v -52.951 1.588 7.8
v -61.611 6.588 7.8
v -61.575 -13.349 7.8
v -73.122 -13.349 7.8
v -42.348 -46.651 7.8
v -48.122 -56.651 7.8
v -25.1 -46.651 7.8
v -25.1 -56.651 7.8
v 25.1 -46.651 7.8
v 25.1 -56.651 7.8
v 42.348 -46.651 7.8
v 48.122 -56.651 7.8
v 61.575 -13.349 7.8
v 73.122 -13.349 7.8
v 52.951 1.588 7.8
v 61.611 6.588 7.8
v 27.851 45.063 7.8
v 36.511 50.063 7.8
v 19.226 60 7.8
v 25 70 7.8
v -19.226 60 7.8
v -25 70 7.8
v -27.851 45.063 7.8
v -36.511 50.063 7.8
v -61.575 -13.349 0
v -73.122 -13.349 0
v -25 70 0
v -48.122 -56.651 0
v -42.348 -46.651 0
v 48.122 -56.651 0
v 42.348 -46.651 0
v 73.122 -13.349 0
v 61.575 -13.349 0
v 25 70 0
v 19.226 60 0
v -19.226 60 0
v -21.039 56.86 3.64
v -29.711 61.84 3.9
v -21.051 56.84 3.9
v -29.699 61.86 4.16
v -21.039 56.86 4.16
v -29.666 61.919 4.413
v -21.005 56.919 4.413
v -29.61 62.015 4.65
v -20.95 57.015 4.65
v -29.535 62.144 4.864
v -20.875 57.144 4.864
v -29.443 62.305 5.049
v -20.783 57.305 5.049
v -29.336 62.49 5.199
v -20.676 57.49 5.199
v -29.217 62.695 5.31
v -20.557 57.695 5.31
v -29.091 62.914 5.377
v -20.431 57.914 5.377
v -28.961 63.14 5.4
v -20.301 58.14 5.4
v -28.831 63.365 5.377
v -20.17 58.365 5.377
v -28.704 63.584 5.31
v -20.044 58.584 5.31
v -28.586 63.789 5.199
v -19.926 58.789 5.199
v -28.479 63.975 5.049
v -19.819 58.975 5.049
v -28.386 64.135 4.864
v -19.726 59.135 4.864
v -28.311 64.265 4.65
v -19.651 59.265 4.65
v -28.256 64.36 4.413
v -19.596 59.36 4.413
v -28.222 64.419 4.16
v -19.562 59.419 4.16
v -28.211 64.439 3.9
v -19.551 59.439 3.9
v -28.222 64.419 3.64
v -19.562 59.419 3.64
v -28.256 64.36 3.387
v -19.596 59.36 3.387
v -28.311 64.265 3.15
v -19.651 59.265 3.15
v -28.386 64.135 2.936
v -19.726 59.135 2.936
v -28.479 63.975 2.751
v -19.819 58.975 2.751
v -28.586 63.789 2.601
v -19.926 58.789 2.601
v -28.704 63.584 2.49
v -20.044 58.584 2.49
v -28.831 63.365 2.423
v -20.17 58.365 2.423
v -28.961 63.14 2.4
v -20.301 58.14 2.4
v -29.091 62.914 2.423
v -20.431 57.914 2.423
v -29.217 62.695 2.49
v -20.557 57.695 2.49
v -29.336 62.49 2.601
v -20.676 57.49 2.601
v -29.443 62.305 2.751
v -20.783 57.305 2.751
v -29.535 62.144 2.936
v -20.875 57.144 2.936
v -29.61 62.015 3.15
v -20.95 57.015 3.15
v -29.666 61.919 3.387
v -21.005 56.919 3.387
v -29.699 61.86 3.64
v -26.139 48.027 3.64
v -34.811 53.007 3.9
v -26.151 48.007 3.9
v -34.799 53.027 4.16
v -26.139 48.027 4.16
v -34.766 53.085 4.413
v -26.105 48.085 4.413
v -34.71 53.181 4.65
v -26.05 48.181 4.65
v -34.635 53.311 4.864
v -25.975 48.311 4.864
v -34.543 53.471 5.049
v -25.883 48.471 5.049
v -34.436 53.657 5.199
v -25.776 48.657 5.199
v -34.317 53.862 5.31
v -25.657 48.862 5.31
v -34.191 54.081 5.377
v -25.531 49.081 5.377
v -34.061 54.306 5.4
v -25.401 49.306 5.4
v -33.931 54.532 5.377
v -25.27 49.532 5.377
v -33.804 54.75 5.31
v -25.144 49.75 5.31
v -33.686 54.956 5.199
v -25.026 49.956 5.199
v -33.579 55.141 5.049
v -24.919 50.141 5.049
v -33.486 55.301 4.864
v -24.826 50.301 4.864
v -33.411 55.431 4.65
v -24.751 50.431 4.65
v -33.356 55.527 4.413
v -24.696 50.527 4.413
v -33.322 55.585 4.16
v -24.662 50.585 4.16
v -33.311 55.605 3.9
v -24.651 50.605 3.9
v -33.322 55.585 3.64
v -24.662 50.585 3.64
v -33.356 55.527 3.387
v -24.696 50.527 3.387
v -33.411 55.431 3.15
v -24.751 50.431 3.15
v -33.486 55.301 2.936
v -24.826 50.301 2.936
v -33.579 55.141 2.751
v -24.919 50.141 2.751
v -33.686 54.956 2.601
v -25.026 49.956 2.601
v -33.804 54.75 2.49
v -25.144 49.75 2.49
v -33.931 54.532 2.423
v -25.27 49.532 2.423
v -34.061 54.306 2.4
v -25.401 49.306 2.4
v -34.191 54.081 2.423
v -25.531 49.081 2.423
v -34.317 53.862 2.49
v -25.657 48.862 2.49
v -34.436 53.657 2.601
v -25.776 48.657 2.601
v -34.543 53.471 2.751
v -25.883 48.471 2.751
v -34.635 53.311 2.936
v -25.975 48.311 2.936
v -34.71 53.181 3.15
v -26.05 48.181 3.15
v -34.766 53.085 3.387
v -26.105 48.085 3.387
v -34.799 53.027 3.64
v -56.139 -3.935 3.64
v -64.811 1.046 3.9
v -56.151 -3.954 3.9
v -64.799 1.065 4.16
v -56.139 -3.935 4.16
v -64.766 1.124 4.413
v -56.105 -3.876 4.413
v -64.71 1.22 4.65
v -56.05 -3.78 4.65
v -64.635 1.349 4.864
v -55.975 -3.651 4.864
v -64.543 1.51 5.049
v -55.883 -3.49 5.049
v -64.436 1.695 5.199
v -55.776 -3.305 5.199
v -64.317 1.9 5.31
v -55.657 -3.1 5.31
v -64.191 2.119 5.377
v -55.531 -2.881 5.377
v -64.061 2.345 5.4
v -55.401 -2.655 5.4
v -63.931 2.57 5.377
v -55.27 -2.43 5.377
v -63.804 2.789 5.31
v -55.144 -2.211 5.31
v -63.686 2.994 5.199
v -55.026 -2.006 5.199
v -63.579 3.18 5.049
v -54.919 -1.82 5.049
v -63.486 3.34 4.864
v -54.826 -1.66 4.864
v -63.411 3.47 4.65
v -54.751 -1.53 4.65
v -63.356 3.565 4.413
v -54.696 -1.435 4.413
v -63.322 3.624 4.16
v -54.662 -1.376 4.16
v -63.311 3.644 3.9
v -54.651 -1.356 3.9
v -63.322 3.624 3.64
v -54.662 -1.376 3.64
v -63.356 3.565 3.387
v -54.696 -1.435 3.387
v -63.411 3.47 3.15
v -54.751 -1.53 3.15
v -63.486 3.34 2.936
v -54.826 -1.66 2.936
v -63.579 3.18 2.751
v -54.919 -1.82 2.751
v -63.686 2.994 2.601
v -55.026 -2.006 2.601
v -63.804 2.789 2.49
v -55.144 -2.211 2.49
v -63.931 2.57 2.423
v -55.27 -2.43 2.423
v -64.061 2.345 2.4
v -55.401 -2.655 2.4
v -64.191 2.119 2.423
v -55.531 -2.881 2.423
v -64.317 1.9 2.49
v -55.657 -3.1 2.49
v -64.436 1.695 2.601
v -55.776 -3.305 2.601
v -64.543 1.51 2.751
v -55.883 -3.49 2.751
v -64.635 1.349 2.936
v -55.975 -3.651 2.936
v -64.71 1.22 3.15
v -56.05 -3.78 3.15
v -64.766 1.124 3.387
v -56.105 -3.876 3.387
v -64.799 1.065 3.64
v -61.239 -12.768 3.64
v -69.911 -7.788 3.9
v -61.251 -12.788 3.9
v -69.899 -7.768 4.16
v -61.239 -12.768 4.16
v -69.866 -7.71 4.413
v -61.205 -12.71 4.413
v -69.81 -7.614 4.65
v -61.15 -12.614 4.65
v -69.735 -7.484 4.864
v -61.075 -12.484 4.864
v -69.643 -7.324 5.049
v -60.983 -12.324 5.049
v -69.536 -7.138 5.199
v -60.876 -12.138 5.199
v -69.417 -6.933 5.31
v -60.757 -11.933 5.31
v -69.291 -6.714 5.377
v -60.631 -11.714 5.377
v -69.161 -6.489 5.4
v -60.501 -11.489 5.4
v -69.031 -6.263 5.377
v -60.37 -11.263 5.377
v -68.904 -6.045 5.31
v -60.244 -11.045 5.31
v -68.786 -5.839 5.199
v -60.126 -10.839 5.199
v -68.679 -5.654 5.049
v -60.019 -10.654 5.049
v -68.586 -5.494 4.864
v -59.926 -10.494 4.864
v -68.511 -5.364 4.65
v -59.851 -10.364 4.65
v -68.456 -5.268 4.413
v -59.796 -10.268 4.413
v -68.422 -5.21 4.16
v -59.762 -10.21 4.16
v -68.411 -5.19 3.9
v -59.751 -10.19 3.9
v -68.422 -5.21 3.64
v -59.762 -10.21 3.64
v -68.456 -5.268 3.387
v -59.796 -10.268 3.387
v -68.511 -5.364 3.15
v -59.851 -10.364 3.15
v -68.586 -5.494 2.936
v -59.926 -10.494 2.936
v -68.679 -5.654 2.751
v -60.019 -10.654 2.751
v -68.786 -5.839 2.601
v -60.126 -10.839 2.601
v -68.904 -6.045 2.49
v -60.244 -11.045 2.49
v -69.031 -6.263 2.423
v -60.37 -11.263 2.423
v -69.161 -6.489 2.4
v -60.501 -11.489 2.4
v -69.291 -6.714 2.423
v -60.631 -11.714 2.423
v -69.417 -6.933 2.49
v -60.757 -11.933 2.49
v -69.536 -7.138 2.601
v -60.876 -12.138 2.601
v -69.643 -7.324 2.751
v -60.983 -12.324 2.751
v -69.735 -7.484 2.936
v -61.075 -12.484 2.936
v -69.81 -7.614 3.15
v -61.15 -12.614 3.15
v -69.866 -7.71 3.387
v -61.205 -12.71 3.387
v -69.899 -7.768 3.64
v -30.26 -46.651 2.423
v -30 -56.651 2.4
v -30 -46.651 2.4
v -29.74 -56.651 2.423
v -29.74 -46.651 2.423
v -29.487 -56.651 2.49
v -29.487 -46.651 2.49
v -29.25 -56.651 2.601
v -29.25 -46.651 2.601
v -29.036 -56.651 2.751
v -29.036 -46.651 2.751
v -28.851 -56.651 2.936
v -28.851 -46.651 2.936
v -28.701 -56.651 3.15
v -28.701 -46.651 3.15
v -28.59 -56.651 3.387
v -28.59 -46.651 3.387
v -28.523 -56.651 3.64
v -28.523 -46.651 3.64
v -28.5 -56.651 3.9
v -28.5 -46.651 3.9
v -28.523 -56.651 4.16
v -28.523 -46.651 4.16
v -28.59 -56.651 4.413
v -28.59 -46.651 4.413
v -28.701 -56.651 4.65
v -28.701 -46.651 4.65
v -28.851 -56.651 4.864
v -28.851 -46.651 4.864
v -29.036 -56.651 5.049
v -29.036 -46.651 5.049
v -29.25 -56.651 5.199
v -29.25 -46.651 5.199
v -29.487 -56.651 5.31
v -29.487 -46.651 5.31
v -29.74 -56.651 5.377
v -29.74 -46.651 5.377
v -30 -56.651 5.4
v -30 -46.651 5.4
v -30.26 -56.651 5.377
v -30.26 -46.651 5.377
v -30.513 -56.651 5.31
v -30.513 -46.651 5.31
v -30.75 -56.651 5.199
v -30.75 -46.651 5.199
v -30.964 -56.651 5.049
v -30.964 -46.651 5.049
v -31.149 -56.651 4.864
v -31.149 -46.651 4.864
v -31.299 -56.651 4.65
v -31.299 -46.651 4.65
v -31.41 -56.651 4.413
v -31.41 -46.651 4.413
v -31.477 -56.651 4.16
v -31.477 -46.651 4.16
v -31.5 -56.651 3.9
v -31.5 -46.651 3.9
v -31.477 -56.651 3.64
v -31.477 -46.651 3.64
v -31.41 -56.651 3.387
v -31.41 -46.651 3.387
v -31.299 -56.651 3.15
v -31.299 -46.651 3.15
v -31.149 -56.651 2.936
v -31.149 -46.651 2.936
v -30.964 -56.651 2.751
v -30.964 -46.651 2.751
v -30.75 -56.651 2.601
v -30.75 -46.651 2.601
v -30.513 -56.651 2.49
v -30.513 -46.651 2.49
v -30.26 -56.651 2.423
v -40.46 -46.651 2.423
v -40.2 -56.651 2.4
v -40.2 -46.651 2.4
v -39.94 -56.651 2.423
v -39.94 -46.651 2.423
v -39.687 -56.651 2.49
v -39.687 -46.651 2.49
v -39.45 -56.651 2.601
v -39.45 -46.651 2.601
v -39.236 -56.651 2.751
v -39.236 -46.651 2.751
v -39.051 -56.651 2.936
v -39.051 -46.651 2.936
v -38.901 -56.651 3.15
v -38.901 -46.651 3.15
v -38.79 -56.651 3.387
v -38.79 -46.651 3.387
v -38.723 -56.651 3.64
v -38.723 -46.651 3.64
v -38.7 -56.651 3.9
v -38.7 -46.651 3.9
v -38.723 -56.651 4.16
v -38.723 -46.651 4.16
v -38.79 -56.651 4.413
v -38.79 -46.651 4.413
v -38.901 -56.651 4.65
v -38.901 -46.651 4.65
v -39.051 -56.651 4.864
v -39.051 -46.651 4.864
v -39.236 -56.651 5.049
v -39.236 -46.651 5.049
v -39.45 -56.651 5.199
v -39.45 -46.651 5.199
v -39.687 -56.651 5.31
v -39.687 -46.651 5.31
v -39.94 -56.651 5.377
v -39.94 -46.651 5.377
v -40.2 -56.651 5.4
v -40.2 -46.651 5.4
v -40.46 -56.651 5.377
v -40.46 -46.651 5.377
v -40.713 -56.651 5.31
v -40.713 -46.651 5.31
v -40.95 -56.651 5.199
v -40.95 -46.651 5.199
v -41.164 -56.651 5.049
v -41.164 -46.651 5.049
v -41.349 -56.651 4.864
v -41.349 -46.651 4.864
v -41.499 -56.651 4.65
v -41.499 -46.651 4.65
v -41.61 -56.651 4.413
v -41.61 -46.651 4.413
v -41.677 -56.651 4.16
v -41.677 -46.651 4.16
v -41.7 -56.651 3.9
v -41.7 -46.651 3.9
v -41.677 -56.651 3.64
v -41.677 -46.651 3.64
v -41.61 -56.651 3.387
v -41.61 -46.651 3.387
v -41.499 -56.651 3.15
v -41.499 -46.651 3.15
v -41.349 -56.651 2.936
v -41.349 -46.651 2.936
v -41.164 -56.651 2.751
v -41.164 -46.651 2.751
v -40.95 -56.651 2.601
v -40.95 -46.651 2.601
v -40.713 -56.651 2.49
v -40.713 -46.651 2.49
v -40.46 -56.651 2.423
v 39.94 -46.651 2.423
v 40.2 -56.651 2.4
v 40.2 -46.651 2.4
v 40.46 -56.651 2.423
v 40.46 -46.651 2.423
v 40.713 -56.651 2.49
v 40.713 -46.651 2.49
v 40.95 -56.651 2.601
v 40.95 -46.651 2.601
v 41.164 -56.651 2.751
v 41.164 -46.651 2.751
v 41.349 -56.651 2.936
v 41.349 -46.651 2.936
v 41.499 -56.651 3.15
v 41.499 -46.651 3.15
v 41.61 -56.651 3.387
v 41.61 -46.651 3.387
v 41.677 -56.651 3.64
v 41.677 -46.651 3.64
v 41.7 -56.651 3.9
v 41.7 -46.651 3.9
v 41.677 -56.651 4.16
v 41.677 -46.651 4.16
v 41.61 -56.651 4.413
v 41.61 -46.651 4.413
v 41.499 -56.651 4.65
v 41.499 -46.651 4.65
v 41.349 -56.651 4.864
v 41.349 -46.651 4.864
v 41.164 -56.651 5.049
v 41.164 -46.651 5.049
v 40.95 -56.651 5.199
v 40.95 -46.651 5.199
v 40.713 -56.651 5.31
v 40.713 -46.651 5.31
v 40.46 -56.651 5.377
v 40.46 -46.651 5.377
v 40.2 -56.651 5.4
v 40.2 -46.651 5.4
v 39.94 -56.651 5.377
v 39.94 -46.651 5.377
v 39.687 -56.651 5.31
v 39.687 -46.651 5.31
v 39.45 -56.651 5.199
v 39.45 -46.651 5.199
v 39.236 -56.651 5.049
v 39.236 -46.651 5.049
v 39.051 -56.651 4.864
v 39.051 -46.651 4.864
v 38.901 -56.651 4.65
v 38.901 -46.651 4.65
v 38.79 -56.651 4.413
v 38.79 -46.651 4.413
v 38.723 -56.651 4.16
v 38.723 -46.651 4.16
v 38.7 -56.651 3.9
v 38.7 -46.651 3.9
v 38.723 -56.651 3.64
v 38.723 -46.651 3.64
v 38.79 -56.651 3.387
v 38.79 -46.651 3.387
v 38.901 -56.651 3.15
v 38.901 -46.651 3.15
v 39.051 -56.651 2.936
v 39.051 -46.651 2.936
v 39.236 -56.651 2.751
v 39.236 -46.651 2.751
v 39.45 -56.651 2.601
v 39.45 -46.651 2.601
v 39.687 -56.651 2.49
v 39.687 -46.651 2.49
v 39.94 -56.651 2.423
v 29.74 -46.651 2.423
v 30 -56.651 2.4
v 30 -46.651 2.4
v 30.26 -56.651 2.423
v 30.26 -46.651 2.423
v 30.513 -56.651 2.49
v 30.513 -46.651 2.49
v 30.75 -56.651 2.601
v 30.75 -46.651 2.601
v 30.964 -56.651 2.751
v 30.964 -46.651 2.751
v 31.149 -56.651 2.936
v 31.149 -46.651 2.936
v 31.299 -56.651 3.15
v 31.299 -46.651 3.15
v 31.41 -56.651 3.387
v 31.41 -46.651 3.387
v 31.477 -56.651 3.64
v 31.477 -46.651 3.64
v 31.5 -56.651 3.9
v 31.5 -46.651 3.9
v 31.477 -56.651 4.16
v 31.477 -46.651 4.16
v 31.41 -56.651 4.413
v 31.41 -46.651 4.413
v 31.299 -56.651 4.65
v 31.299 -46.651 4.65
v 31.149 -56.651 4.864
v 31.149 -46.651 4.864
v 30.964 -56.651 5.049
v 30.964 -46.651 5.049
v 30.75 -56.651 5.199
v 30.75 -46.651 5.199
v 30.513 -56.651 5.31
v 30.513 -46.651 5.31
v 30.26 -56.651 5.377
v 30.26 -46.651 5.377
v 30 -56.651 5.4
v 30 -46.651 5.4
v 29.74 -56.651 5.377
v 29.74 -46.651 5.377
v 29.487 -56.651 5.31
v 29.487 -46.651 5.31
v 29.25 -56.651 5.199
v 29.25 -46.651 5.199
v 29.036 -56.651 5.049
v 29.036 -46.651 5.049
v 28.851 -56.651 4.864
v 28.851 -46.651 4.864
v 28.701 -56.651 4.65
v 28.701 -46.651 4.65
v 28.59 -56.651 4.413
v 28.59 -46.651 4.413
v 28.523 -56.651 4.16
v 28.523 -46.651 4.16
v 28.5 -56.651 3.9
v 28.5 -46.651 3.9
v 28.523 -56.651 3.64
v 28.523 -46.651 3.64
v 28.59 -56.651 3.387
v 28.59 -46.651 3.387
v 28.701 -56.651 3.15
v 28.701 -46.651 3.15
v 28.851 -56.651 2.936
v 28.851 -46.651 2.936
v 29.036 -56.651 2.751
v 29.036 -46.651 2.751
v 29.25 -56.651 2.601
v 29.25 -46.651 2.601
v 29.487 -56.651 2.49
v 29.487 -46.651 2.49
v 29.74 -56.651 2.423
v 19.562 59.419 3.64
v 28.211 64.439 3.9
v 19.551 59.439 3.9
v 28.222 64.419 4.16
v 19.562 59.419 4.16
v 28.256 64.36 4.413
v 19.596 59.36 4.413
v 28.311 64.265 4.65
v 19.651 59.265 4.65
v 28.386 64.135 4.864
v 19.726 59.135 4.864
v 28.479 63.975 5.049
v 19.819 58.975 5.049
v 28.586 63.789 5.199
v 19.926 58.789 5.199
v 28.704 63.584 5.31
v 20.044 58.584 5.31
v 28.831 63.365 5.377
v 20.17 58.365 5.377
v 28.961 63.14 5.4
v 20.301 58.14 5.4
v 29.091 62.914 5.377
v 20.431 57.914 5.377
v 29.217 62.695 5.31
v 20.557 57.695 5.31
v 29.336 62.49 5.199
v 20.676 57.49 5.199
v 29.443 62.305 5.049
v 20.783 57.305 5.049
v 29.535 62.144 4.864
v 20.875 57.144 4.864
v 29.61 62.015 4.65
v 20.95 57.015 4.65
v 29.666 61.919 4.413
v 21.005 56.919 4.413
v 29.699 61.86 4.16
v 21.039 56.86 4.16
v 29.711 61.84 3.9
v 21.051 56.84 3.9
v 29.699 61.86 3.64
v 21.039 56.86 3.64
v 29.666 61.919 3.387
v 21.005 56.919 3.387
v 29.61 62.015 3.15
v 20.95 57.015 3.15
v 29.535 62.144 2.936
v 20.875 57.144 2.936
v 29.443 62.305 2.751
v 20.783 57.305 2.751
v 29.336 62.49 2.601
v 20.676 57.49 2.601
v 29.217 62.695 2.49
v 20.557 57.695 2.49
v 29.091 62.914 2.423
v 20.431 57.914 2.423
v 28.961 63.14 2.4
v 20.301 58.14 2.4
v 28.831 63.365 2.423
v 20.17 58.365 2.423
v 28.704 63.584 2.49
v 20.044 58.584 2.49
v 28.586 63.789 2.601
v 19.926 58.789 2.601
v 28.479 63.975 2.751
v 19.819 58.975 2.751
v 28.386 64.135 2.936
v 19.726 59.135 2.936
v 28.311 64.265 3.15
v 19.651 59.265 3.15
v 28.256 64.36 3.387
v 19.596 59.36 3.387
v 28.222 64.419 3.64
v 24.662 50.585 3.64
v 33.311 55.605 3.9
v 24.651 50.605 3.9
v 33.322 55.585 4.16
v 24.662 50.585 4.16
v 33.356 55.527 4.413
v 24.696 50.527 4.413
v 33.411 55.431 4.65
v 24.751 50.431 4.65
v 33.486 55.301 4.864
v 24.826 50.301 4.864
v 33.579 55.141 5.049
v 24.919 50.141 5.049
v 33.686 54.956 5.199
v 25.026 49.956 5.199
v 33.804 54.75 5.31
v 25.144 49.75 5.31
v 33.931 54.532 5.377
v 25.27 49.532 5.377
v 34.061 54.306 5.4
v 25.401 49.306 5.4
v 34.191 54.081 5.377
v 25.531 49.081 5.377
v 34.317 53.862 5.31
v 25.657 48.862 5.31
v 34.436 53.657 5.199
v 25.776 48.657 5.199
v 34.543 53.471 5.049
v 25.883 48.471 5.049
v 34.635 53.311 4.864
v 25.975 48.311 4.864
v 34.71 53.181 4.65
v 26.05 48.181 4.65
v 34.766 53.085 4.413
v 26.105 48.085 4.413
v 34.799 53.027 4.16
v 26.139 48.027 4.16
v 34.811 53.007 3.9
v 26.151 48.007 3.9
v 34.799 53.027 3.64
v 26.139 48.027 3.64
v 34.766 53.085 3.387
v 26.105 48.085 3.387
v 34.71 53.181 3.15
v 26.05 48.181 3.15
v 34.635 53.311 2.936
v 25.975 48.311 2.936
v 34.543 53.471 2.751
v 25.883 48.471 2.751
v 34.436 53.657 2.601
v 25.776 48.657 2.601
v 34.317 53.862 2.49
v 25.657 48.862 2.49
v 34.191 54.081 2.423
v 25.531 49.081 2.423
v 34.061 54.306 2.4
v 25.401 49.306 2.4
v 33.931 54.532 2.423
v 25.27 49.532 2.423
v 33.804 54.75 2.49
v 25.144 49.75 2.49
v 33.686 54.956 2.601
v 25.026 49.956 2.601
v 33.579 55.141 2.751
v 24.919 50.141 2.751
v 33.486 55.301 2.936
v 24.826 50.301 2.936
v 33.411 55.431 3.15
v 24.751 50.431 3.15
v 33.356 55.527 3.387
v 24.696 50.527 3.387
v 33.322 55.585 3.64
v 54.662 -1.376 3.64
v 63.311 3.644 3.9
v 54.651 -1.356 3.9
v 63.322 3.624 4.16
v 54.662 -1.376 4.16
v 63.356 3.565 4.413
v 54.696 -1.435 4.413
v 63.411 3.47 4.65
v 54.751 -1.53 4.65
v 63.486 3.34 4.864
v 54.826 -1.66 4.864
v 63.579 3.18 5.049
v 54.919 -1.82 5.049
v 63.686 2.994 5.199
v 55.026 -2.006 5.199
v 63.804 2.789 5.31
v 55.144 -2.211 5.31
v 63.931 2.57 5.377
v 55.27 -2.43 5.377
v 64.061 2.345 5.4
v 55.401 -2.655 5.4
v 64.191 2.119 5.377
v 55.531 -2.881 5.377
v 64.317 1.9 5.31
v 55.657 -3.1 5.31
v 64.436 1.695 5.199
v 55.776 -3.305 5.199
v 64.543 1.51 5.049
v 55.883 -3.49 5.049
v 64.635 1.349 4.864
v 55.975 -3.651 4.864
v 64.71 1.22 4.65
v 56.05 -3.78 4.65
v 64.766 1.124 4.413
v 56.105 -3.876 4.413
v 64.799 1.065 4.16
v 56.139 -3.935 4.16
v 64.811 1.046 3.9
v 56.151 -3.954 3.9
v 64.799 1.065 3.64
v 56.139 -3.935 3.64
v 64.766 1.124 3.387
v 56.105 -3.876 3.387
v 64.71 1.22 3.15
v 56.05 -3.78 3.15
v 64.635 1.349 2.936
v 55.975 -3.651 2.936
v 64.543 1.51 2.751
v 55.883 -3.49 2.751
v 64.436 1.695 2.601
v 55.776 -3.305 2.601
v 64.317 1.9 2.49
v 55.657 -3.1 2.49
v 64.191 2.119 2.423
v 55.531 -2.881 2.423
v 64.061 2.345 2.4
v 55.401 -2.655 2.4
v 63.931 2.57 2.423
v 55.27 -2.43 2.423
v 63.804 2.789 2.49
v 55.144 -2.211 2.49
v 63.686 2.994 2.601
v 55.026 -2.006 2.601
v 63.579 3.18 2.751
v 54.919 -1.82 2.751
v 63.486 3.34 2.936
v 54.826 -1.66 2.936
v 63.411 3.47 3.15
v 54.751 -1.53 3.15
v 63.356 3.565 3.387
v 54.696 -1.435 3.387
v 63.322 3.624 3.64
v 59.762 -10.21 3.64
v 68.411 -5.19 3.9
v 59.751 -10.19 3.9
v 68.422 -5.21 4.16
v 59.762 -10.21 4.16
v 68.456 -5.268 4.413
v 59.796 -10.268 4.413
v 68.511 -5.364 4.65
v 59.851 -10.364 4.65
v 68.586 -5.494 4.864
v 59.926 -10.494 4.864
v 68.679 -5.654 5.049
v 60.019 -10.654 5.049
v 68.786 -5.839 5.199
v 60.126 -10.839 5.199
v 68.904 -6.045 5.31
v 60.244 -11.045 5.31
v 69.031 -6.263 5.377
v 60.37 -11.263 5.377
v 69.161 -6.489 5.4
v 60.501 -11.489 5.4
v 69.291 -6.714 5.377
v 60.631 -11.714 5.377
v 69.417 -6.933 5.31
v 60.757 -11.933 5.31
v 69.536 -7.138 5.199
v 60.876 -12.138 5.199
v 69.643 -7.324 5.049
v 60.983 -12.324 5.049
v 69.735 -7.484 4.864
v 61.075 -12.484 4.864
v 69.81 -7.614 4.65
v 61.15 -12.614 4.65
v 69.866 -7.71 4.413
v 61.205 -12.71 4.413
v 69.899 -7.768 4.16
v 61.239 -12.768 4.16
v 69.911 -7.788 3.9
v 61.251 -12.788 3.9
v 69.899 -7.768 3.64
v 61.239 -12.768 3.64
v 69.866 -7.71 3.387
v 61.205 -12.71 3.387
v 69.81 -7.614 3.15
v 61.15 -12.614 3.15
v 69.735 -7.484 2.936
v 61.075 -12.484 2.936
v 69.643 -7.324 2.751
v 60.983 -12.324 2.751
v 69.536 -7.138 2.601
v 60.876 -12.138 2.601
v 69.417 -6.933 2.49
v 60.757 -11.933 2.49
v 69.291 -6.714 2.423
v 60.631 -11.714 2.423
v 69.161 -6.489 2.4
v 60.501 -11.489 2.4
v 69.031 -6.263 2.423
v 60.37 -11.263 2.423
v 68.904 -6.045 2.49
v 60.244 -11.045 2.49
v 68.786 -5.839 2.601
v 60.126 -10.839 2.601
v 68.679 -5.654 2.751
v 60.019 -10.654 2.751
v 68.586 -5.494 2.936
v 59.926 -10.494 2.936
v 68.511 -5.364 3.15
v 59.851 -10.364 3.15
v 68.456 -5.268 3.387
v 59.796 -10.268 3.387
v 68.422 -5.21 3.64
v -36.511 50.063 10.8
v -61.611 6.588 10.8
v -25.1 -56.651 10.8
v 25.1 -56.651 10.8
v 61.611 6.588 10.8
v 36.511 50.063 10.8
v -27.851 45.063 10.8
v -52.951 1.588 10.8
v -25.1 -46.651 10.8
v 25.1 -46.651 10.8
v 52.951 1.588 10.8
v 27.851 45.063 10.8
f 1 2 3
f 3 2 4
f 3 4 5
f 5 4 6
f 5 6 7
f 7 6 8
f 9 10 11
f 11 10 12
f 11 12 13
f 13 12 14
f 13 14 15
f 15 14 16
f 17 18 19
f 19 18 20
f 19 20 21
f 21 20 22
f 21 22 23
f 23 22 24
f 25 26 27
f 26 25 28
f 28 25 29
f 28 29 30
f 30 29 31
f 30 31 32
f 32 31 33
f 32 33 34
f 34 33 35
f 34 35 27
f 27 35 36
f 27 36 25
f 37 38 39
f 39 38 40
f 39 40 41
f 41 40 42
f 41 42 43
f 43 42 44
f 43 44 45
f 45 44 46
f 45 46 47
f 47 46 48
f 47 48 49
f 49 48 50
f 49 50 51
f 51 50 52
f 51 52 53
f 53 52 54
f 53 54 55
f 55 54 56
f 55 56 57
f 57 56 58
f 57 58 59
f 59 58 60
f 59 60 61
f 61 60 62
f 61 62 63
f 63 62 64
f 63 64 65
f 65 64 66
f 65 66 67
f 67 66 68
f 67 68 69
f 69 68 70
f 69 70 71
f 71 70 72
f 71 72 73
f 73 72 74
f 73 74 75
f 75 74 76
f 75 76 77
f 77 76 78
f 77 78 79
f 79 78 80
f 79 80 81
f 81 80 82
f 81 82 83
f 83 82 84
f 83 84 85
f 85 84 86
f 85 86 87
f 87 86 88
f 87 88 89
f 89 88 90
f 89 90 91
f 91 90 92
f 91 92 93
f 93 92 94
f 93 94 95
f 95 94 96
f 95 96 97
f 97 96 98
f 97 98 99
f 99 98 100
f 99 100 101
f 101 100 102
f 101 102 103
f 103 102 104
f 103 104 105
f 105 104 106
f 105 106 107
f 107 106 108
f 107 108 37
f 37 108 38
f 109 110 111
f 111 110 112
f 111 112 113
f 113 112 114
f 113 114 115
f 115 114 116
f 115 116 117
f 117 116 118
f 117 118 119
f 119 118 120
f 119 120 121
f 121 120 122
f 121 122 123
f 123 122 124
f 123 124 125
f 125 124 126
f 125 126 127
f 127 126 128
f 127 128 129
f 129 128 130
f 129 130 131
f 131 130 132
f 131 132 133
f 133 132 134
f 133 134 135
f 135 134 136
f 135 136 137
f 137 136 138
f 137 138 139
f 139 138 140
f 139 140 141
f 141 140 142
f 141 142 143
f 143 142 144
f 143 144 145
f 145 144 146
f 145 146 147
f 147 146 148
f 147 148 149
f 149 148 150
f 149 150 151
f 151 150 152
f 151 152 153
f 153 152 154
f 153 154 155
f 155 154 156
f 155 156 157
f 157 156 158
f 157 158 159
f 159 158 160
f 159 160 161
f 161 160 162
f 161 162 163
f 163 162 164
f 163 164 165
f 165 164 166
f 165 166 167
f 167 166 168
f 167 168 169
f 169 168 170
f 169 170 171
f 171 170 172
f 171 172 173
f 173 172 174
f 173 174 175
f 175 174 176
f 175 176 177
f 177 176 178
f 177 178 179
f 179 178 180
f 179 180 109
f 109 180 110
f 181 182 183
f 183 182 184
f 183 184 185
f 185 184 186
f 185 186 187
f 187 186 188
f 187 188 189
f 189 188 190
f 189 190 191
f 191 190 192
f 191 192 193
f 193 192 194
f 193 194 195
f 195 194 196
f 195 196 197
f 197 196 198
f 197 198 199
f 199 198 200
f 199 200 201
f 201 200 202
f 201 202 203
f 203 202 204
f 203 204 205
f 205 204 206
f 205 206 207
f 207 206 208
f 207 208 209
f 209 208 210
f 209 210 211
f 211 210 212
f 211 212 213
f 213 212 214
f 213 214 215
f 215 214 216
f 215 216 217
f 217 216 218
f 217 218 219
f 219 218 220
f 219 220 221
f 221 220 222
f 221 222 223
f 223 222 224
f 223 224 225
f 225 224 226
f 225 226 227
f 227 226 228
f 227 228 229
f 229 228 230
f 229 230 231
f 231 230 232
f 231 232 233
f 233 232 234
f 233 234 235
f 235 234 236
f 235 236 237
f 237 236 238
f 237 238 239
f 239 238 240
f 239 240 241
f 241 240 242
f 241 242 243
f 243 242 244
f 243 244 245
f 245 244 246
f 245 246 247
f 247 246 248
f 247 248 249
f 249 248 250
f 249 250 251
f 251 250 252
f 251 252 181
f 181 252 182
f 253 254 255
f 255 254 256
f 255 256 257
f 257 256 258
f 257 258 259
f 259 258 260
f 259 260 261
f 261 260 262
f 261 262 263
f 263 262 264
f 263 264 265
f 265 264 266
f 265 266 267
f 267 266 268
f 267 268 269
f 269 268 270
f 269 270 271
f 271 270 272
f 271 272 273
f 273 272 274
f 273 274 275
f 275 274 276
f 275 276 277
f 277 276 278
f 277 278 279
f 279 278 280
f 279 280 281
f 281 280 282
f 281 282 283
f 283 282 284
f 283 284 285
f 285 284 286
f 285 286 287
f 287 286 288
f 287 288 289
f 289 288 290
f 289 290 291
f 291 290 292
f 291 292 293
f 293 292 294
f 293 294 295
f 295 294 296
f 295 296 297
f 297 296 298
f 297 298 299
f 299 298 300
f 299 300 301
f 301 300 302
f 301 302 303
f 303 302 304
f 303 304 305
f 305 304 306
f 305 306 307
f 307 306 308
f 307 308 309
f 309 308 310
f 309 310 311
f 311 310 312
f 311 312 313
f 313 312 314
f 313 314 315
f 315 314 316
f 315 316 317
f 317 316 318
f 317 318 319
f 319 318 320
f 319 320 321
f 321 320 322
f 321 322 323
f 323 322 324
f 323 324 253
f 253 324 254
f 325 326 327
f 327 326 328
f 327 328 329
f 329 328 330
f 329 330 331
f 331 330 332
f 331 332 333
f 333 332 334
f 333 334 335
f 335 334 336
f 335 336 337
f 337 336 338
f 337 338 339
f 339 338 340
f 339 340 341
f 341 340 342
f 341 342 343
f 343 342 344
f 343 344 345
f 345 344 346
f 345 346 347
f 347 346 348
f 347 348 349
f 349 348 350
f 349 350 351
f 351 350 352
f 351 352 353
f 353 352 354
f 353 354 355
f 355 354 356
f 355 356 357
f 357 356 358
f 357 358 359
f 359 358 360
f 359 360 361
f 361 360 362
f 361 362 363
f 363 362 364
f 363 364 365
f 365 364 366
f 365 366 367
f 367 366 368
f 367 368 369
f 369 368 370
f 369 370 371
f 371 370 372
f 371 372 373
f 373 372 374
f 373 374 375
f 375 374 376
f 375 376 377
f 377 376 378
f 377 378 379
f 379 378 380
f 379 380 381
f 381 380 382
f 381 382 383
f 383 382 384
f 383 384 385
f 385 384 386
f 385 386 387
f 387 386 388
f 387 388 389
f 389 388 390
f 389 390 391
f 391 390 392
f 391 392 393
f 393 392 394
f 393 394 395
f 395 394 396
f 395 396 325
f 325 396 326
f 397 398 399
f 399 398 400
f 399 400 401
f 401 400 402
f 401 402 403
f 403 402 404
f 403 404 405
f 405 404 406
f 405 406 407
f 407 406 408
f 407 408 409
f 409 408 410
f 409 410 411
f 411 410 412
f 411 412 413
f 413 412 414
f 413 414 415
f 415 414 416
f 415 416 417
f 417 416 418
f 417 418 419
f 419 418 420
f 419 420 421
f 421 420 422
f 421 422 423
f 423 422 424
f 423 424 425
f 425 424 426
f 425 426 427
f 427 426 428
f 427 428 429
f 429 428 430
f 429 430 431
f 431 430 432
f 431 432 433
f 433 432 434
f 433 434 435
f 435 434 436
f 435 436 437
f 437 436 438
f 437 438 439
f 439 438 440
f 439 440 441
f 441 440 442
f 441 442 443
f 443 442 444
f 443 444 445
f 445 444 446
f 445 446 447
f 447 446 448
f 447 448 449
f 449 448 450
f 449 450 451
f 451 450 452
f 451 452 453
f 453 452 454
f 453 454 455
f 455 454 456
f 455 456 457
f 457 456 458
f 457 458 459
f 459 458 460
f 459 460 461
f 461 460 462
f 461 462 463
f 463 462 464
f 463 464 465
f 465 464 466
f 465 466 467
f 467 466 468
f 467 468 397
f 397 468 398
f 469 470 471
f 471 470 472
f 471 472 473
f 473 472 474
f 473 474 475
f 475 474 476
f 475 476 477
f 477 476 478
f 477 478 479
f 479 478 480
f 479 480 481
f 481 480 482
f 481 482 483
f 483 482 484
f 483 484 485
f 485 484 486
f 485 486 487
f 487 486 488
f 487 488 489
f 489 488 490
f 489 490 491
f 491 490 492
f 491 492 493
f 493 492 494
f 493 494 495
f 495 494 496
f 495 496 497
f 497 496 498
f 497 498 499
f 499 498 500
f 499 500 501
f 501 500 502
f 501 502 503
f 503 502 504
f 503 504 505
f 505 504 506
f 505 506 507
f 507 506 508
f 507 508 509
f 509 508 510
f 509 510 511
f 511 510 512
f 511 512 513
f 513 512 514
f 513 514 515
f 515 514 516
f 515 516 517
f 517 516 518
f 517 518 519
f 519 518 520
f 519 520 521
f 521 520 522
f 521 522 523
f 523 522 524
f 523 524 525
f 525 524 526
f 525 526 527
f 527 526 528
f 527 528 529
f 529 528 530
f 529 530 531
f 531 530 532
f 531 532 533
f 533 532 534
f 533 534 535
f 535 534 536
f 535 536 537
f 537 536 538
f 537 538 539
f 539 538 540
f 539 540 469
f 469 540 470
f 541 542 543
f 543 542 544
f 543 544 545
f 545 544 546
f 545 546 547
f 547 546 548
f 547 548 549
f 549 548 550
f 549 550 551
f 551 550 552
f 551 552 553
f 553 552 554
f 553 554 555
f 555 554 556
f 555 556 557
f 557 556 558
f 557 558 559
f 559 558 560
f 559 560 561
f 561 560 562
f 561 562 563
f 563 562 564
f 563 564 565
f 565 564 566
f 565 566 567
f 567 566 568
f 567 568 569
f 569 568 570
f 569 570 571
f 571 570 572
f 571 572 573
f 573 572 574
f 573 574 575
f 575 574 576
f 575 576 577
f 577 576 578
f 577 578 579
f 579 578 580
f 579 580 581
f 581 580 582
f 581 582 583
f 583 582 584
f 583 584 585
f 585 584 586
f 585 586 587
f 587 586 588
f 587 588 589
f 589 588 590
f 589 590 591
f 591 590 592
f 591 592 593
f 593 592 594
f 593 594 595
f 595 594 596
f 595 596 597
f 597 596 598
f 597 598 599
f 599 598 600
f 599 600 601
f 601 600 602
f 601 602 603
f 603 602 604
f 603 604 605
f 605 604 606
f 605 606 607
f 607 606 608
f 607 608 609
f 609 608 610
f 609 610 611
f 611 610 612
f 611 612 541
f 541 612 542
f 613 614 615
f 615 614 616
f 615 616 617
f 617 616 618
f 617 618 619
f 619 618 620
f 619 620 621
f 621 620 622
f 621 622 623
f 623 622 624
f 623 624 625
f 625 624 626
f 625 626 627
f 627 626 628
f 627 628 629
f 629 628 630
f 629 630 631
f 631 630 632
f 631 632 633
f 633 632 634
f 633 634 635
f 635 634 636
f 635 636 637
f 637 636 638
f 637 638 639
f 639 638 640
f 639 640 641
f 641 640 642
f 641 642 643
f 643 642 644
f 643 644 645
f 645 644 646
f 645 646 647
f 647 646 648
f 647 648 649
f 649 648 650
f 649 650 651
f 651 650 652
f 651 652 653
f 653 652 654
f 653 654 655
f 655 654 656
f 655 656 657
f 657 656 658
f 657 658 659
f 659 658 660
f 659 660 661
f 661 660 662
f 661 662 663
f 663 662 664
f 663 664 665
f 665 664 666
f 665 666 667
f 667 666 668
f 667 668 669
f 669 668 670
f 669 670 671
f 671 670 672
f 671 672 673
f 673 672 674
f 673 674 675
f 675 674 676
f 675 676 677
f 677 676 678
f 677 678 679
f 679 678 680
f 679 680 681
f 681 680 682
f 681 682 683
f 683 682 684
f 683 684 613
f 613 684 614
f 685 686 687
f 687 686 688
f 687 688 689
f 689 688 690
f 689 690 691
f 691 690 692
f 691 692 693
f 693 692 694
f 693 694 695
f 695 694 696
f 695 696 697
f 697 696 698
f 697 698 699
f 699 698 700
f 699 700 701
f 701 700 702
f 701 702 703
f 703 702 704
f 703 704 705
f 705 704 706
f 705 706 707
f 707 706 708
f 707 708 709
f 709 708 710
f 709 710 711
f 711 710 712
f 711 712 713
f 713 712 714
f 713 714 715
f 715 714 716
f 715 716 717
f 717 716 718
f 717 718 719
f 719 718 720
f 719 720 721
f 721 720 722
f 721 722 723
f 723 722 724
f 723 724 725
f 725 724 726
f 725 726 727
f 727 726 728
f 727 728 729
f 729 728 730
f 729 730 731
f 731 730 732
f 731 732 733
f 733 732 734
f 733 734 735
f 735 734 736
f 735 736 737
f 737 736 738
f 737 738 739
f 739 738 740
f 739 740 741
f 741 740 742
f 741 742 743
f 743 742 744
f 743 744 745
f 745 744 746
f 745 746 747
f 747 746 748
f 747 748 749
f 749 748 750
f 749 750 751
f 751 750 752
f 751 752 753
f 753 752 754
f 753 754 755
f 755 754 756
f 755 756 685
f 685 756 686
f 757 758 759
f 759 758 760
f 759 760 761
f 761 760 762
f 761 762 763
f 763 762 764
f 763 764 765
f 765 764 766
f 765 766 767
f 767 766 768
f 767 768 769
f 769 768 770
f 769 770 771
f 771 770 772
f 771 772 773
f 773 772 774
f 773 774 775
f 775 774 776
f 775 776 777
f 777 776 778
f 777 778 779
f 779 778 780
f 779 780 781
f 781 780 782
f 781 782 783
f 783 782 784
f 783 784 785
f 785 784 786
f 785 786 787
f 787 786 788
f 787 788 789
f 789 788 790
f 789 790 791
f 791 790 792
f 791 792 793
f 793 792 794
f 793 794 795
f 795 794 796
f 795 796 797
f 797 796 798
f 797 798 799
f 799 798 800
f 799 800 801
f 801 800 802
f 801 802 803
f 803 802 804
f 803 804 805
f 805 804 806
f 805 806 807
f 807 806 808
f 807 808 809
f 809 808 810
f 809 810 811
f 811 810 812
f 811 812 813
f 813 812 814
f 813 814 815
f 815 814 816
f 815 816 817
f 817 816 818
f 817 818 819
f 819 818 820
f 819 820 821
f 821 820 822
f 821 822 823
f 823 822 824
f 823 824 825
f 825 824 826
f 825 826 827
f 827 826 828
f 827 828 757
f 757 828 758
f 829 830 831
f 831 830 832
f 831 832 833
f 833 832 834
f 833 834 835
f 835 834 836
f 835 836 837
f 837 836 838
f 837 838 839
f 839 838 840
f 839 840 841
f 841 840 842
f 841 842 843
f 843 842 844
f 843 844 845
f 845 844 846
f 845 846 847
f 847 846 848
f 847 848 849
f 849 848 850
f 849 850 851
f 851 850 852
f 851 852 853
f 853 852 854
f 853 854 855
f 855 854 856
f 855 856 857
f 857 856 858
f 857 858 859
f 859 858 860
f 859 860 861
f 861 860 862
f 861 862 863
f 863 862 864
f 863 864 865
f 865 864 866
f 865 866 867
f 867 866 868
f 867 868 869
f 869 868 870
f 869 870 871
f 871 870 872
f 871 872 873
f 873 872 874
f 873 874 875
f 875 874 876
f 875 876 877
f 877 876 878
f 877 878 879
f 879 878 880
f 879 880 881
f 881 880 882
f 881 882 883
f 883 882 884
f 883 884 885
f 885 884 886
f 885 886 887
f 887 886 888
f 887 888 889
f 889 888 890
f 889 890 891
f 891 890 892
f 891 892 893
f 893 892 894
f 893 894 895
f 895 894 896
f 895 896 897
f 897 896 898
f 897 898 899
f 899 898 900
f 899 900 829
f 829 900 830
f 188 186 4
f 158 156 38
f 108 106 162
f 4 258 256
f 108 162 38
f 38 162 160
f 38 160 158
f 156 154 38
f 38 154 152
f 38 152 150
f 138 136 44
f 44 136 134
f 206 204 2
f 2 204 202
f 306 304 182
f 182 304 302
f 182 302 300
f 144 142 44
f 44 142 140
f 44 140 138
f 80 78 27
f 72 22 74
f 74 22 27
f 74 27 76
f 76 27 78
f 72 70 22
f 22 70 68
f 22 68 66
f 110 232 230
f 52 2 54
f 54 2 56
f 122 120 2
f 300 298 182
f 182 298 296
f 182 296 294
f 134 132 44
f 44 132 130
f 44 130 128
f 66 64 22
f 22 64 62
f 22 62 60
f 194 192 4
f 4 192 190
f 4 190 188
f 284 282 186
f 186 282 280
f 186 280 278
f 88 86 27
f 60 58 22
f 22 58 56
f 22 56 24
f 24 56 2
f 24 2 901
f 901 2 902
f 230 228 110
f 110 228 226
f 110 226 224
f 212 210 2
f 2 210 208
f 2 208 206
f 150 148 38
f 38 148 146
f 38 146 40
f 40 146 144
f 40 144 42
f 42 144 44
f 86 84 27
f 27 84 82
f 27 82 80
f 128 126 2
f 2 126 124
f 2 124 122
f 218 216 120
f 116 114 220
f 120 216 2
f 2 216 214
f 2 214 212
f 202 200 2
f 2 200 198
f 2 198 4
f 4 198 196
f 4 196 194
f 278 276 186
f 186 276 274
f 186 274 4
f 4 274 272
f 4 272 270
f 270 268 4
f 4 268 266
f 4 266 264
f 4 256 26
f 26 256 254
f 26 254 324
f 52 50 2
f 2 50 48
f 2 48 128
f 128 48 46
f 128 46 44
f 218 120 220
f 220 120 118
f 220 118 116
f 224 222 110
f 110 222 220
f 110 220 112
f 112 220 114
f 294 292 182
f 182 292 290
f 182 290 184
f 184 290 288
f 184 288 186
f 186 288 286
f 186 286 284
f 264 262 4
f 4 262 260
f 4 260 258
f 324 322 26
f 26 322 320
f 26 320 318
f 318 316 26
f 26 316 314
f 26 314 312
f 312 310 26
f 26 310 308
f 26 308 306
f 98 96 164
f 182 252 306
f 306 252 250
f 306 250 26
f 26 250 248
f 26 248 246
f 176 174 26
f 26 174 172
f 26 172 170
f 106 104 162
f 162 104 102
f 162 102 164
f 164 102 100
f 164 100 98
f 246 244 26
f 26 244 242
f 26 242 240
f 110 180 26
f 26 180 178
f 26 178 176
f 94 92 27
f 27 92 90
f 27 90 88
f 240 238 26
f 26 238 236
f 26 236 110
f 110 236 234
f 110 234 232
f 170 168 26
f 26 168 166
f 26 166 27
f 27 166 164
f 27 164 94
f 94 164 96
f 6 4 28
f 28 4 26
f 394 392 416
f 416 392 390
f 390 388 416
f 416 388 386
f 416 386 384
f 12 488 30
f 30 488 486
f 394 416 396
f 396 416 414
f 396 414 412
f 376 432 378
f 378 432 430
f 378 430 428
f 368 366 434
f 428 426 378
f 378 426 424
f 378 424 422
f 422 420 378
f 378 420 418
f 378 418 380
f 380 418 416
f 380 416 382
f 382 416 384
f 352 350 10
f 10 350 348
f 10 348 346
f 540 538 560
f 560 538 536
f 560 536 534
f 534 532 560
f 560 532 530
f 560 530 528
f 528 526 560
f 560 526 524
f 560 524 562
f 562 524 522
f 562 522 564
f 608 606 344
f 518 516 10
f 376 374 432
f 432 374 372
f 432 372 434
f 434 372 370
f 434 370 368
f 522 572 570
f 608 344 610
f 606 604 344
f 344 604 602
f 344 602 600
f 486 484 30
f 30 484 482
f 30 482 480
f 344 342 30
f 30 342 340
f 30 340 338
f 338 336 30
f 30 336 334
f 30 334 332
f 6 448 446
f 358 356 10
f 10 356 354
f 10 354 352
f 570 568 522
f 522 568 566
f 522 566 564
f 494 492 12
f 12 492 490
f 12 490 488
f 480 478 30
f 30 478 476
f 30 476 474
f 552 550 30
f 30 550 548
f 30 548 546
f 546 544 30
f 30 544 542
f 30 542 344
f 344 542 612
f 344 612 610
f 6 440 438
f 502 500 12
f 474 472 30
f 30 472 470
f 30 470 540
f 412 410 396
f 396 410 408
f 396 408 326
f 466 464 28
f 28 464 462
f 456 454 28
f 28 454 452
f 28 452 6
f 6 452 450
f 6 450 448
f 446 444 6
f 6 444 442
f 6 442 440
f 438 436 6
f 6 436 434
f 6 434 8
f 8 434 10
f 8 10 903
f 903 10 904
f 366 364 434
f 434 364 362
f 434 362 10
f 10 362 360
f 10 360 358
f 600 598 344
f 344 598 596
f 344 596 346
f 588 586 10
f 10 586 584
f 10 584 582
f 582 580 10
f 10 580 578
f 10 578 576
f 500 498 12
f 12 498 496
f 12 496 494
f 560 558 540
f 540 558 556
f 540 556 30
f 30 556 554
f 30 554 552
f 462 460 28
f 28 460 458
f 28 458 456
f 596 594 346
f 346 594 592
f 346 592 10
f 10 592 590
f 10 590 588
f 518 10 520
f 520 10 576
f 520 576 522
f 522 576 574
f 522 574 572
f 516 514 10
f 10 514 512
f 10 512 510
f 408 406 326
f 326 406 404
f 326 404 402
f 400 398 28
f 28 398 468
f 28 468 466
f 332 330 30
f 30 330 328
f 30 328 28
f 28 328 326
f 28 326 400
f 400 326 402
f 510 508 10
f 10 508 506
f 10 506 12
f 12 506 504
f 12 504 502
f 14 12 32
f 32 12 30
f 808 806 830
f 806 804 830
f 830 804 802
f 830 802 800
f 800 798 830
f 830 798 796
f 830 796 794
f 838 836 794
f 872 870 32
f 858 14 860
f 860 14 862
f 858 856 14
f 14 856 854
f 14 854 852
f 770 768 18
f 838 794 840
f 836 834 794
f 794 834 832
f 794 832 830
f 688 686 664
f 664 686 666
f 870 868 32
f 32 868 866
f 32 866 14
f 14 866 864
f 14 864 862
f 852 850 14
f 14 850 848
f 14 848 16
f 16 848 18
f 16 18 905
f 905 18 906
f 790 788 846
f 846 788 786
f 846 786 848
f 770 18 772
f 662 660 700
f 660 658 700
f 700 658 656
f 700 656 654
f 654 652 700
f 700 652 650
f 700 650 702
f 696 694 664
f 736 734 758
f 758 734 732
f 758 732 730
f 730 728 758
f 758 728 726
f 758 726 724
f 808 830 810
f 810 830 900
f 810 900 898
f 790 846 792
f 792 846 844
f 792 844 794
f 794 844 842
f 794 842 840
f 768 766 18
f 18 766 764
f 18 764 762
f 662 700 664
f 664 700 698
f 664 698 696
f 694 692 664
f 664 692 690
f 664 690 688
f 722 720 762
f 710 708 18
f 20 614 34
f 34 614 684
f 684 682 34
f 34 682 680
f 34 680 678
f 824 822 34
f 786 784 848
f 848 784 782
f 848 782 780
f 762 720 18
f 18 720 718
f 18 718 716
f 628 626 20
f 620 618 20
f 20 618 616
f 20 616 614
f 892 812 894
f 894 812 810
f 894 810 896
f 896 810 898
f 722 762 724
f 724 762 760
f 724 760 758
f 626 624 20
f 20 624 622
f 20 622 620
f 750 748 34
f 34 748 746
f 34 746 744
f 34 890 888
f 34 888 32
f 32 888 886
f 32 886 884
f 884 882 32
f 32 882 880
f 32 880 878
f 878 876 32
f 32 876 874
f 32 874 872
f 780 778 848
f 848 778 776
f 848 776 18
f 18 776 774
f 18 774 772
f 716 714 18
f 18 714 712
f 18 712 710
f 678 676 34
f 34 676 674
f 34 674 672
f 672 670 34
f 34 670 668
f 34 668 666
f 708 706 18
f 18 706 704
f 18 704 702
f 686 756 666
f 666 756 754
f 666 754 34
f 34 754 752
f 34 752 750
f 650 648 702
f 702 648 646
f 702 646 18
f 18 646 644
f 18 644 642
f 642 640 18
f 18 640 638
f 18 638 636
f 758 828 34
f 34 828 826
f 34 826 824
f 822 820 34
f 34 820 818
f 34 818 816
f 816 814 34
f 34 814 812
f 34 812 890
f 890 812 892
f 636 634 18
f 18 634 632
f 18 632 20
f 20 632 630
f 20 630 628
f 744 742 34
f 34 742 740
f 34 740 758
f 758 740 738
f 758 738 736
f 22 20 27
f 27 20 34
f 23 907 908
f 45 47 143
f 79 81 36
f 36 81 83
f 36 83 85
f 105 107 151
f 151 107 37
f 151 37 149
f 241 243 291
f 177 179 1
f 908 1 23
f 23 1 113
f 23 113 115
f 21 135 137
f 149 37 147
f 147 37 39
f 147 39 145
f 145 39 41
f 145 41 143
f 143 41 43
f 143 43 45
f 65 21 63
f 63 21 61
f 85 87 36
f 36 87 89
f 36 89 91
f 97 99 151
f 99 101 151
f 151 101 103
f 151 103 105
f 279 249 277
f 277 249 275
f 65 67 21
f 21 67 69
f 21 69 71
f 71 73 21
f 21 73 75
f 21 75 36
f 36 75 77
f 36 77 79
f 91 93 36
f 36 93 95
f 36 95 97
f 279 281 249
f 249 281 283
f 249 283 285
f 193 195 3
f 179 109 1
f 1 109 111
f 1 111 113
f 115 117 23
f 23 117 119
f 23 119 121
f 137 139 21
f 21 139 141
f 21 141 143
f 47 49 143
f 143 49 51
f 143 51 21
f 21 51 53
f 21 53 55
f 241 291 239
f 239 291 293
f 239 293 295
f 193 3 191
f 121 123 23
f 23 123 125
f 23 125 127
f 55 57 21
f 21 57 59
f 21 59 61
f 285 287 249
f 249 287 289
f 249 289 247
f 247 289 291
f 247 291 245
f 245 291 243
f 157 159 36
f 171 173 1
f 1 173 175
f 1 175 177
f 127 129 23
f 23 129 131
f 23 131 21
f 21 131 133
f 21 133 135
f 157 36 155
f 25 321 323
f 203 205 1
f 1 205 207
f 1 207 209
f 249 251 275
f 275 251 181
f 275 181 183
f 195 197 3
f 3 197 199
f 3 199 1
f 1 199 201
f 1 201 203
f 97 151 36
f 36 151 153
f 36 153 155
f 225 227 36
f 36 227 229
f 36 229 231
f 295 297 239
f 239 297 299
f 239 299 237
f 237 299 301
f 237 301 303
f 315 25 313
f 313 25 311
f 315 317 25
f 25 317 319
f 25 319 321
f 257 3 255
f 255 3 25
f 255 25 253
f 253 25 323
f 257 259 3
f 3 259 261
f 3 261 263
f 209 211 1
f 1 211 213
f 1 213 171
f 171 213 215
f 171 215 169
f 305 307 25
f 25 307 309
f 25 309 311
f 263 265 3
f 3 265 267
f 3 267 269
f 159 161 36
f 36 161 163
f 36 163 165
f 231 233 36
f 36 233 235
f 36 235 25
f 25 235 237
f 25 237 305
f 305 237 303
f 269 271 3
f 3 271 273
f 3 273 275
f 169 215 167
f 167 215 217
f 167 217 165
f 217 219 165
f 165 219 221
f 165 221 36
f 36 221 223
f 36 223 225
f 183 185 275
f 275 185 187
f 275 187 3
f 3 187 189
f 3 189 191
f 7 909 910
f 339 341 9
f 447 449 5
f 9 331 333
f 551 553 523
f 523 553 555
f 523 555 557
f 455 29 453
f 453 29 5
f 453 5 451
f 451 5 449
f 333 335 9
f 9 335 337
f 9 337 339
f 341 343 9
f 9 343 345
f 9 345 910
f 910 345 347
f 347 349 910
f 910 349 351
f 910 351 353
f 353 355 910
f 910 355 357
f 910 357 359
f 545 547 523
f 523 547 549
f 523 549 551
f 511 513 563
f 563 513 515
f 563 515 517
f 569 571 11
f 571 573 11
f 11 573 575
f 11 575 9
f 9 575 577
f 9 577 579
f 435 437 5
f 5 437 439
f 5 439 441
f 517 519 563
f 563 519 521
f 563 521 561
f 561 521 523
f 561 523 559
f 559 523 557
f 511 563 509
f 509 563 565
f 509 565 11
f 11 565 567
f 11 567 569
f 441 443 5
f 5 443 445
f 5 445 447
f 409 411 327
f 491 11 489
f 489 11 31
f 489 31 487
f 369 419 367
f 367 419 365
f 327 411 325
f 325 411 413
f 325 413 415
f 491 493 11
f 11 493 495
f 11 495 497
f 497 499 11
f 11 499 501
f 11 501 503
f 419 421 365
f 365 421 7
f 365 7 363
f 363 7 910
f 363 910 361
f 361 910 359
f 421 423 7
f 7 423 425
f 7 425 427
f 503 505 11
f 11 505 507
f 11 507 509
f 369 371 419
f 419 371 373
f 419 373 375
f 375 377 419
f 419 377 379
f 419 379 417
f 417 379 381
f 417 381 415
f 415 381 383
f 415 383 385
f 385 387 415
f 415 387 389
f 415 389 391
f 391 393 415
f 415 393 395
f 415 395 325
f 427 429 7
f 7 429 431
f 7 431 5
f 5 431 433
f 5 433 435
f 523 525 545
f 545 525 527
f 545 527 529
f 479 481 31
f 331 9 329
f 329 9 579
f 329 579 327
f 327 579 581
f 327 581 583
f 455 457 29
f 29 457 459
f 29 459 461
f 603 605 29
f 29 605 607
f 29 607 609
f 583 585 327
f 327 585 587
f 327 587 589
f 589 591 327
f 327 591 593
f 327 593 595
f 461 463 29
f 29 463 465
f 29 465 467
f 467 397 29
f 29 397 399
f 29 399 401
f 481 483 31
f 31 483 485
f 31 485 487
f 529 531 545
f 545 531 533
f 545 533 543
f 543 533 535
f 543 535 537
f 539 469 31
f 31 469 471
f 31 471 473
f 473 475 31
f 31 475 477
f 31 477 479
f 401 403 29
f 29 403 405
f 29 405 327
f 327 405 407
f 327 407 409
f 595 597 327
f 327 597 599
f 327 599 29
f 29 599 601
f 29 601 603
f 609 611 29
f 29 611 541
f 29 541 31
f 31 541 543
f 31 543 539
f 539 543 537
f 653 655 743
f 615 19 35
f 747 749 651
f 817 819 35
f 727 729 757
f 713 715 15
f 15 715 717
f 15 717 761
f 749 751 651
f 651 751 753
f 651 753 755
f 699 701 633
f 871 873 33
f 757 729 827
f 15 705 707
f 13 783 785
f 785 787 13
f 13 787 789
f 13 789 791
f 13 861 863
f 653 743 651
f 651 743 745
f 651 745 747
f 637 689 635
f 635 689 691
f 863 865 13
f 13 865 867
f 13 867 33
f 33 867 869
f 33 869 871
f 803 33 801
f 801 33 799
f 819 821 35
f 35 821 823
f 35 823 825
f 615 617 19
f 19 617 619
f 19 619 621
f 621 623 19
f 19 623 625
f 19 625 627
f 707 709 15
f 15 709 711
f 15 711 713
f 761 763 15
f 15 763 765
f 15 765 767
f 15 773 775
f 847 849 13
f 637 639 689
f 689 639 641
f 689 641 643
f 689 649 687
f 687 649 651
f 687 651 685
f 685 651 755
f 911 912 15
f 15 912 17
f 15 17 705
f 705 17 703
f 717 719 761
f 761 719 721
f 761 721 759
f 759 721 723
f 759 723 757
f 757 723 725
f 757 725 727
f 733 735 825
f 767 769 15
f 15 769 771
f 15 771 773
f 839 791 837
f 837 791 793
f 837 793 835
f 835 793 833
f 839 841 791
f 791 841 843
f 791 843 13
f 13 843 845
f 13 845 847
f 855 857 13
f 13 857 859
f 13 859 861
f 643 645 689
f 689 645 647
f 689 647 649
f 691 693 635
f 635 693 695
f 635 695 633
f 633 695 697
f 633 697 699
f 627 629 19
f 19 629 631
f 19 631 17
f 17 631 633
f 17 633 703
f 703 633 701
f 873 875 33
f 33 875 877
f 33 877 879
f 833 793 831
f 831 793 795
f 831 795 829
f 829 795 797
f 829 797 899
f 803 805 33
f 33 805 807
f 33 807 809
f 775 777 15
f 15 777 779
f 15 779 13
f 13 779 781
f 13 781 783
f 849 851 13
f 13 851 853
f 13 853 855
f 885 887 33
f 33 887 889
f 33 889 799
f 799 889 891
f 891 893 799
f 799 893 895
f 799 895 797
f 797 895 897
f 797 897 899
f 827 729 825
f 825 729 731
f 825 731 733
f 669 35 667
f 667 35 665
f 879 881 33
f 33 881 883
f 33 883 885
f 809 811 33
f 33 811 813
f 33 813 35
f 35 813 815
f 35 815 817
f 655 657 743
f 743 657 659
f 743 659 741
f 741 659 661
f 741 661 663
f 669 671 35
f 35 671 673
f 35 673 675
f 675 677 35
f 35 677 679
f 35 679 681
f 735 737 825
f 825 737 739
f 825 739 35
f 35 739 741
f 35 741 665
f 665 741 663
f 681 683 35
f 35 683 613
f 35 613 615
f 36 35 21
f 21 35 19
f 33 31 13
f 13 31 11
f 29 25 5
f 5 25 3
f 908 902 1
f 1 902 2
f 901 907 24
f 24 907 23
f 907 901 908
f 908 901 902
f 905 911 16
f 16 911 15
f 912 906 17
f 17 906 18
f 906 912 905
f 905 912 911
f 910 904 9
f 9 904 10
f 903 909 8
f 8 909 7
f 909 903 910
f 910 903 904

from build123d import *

# Parameters (mm, degrees)
EXTRUDE_1_DEPTH     = 7.8
SKETCH_3_R          = 1.5
CUT_EXTRUDE_1_DEPTH = 12
SKETCH_9_R          = 1.5
CUT_EXTRUDE_2_DEPTH = 12
SKETCH_10_R         = 1.5
CUT_EXTRUDE_3_DEPTH = 12
CUT_EXTRUDE_4_DEPTH = 8.8
SKETCH_14_W         = 50.2
SKETCH_14_H         = 10
EXTRUDE_2_DEPTH     = 3


with BuildPart() as part:
    # 草圖1 → 填料-伸長1 (new body)
    with BuildSketch(Plane.XY):
        Polygon((-25, 70), (25, 70), (73.121778265, -13.349364905), (48.121778265, -56.650635095), (-48.121778265, -56.650635095), (-73.121778265, -13.349364905), align=None)
    extrude(amount=EXTRUDE_1_DEPTH)

    # 草圖3 → 除料-伸長1 (cut)
    with BuildSketch(Plane(origin=(-49.060889132, 28.325317547, 0), x_dir=(0, 0, 1), z_dir=(-0.866025404, 0.5, 0))):
        with Locations((3.9, 40.2)):
            Circle(SKETCH_3_R)
        with Locations((3.9, 30)):
            Circle(SKETCH_3_R)
        with Locations((3.9, -30)):
            Circle(SKETCH_3_R)
        with Locations((3.9, -40.2)):
            Circle(SKETCH_3_R)
    extrude(amount=-CUT_EXTRUDE_1_DEPTH, mode=Mode.SUBTRACT)

    # 草圖9 → 除料-伸長2 (cut)
    with BuildSketch(Plane.XZ.offset(56.650635095)):
        with Locations((-30, 3.9)):
            Circle(SKETCH_9_R)
        with Locations((-40.2, 3.9)):
            Circle(SKETCH_9_R)
        with Locations((40.2, 3.9)):
            Circle(SKETCH_9_R)
        with Locations((30, 3.9)):
            Circle(SKETCH_9_R)
    extrude(amount=-CUT_EXTRUDE_2_DEPTH, mode=Mode.SUBTRACT)

    # 草圖10 → 除料-伸長3 (cut)
    with BuildSketch(Plane(origin=(49.060889132, 28.325317547, 0), x_dir=(0, 0, -1), z_dir=(0.866025404, 0.5, 0))):
        with Locations((-3.9, 40.2)):
            Circle(SKETCH_10_R)
        with Locations((-3.9, 30)):
            Circle(SKETCH_10_R)
        with Locations((-3.9, -30)):
            Circle(SKETCH_10_R)
        with Locations((-3.9, -40.2)):
            Circle(SKETCH_10_R)
    extrude(amount=-CUT_EXTRUDE_3_DEPTH, mode=Mode.SUBTRACT)

    # 草圖13 → 除料-伸長4 (cut, through all)
    with BuildSketch(Plane.XY.offset(7.8)):
        Polygon((-61.574772881, -13.349364905), (-19.226497308, 60), (19.226497308, 60), (61.574772881, -13.349364905), (42.348275573, -46.650635095), (-42.348275573, -46.650635095), align=None)
    extrude(amount=-CUT_EXTRUDE_4_DEPTH, mode=Mode.SUBTRACT)

    # 草圖14 → 填料-伸長2 (add)
    with BuildSketch(Plane.XY.offset(7.8)):
        Polygon((-27.850635095, 45.062555182), (-36.510889132, 50.062555182), (-61.610889132, 6.588079912), (-52.950635095, 1.588079912), align=None)
        Polygon((36.510889132, 50.062555182), (27.850635095, 45.062555182), (52.950635095, 1.588079912), (61.610889132, 6.588079912), align=None)
        with Locations((0, -51.650635095)):
            Rectangle(SKETCH_14_W, SKETCH_14_H)
    extrude(amount=EXTRUDE_2_DEPTH)


solid = part.part
